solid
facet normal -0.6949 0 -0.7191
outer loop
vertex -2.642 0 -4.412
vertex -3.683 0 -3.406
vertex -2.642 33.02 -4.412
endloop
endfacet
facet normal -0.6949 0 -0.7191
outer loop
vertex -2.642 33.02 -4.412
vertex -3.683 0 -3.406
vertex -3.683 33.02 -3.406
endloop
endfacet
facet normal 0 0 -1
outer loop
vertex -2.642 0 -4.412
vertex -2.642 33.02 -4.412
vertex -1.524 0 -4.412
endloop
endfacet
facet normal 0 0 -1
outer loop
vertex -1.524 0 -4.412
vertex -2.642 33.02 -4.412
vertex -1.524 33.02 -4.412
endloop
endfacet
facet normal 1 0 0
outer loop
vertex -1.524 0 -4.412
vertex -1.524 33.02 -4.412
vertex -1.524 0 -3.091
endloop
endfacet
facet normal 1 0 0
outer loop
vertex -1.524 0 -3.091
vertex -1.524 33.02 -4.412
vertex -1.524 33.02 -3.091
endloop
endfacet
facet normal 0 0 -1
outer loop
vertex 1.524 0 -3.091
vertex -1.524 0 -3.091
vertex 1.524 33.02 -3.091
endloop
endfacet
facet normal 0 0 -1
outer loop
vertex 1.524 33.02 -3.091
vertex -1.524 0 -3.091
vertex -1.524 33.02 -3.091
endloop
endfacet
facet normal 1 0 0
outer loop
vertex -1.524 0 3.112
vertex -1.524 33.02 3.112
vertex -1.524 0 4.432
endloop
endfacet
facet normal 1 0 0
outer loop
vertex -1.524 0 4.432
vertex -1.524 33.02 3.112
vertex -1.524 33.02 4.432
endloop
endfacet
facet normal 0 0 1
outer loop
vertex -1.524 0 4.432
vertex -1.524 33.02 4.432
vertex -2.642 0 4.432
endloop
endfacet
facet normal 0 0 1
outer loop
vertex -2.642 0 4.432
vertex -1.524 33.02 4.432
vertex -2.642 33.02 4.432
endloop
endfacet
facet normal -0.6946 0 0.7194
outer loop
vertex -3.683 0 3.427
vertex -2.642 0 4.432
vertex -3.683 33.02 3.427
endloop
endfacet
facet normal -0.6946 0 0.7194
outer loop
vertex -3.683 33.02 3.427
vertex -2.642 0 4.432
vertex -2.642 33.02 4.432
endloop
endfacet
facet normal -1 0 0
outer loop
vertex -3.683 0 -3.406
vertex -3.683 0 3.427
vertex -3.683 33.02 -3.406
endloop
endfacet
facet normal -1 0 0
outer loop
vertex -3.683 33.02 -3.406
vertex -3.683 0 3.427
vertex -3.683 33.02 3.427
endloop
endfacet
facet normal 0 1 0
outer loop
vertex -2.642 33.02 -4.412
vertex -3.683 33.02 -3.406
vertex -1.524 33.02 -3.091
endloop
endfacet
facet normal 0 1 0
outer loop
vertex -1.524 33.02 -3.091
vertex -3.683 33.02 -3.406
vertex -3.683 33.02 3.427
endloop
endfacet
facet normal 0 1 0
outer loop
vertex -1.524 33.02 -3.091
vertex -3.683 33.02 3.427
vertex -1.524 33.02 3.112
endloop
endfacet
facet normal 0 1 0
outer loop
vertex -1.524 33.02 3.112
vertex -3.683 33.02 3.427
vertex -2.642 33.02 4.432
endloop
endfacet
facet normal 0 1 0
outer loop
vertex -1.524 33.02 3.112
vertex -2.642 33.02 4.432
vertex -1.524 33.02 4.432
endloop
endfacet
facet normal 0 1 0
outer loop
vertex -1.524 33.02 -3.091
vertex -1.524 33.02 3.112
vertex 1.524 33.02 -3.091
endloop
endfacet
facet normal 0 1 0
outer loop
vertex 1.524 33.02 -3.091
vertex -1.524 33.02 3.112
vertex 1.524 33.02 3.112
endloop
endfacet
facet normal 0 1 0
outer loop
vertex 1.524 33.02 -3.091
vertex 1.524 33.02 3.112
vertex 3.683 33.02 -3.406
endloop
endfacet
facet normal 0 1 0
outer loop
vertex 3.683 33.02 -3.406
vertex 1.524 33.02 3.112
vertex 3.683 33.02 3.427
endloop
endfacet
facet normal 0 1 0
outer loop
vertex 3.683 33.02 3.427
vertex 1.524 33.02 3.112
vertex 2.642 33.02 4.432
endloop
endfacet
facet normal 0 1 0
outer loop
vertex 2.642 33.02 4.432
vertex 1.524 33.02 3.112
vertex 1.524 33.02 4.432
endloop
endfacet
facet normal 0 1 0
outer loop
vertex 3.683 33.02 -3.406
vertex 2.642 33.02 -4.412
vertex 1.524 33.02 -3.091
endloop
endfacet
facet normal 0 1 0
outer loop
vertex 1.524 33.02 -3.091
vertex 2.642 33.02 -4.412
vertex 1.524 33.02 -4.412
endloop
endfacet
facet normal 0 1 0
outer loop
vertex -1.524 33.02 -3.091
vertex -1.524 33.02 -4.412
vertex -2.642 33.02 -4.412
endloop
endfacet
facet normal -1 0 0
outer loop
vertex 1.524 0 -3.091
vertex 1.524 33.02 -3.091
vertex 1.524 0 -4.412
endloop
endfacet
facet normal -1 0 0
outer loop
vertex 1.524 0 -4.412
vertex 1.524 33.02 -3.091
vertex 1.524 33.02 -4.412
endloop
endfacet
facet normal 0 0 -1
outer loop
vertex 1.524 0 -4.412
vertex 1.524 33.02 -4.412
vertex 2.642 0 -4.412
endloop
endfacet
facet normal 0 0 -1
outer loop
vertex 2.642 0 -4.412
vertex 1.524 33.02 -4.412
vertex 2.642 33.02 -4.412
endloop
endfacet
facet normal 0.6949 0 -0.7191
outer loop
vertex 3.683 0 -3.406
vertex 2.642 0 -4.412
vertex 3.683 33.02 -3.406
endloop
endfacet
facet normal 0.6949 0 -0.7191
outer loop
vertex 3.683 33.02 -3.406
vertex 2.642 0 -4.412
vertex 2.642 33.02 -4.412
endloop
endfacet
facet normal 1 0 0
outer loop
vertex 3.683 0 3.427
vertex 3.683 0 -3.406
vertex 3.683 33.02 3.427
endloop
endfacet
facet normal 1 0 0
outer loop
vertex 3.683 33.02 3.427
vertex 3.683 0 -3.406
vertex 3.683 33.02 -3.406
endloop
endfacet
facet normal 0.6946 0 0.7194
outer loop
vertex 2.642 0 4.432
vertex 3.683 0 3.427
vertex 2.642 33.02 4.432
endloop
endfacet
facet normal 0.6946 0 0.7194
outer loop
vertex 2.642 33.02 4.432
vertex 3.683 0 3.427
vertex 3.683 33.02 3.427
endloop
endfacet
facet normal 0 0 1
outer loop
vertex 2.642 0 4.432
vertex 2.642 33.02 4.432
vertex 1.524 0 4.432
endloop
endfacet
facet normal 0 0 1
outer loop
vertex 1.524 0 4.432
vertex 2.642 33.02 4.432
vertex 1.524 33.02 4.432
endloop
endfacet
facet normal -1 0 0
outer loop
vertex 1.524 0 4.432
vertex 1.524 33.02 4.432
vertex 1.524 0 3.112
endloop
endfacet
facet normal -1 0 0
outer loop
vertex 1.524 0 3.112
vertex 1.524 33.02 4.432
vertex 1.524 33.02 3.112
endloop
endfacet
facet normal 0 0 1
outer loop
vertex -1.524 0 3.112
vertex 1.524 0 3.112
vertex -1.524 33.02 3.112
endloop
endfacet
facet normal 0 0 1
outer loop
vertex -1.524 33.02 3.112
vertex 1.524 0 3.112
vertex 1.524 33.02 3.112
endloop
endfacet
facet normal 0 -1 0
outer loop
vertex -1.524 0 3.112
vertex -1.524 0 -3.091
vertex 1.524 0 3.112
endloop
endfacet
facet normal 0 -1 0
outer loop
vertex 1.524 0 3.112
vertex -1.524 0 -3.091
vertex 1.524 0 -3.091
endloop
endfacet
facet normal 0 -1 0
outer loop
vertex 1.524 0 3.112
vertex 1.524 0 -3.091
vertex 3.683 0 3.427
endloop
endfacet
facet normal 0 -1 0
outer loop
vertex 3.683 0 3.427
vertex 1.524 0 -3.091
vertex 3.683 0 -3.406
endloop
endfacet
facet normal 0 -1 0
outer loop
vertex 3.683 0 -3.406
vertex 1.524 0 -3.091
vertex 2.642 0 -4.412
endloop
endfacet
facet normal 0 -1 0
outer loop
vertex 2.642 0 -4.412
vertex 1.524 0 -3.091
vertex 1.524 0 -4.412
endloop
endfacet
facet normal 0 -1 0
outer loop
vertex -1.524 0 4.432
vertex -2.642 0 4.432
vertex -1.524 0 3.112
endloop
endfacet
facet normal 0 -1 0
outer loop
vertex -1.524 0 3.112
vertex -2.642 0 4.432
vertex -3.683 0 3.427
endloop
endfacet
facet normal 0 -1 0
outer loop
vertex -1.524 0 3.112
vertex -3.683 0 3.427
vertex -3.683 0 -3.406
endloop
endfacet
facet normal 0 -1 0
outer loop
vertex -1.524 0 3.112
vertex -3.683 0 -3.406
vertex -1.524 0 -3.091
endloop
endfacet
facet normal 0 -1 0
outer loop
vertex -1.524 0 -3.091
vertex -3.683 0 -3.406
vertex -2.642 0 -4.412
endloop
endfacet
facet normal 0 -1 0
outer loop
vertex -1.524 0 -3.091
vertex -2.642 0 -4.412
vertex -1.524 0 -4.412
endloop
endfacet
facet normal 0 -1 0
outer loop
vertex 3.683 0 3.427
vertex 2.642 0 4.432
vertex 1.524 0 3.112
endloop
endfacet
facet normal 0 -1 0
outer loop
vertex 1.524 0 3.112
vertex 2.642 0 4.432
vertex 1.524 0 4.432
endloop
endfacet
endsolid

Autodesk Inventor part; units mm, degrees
ref_plane "YZ Plane" through (0, 0, 0) normal (1, 0, 0) x (0, 1, 0)
ref_plane "XZ Plane" through (0, 0, 0) normal (0, 1, 0) x (-1, 0, 0)
ref_plane "XY Plane" through (0, 0, 0) normal (0, 0, 1) x (1, 0, 0)
sketch "Sketch1" plane through (0, 0, 0) normal (0, 1, 0) x (-1, 0, 0)
  line L0 (0, 0) -> (0, 3.1115)
  line L1 (0, 3.1115) -> (1.524, 3.1115)
  line L2 (1.524, 3.1115) -> (1.524, 4.4323)
  line L3 (1.524, 4.4323) -> (2.6416, 4.4323)
  line L4 (2.6416, 4.4323) -> (3.683, 3.4265)
  line L5 (3.683, 3.4265) -> (3.683, 0.0102)
  line L6 (7.9375, 0.0102) -> (-3.8699, 0.0102) construction
  line L7 (0, 0.0204) -> (0, -3.0911)
  line L8 (0, -3.0911) -> (1.524, -3.0911)
  line L9 (1.524, -3.0911) -> (1.524, -4.4119)
  line L10 (1.524, -4.4119) -> (2.6416, -4.4119)
  line L11 (2.6416, -4.4119) -> (3.683, -3.4061)
  line L12 (3.683, -3.4061) -> (3.683, 0.0102)
  line L13 (3.683, 3.4265) -> (3.683, -3.4061)
  line L14 (0, -3.0911) -> (0, 3.1115)
  line L15 (0, 3.1115) -> (-1.524, 3.1115)
  line L16 (-1.524, 3.1115) -> (-1.524, 4.4323)
  line L17 (-1.524, 4.4323) -> (-2.6416, 4.4323)
  line L18 (-2.6416, 4.4323) -> (-3.683, 3.4265)
  line L19 (-2.6416, -4.4119) -> (-3.683, -3.4061)
  line L20 (-1.524, -4.4119) -> (-2.6416, -4.4119)
  line L21 (-1.524, -3.0911) -> (-1.524, -4.4119)
  line L22 (0, -3.0911) -> (-1.524, -3.0911)
  line L23 (-3.683, 3.4265) -> (-3.683, -3.4061)
  dimension "d1" = 3.1115
  dimension "d2" = 1.524
  dimension "d3" = 1.3208
  dimension "d4" = 1.1176
  dimension "d5" = 1.4478
  dimension "d6" = 3.4163
  dimension "d7" = 3.683
extrude "Extrusion1" add sketch "Sketch1" along normal blind 33.02
properties part number "double slider"
